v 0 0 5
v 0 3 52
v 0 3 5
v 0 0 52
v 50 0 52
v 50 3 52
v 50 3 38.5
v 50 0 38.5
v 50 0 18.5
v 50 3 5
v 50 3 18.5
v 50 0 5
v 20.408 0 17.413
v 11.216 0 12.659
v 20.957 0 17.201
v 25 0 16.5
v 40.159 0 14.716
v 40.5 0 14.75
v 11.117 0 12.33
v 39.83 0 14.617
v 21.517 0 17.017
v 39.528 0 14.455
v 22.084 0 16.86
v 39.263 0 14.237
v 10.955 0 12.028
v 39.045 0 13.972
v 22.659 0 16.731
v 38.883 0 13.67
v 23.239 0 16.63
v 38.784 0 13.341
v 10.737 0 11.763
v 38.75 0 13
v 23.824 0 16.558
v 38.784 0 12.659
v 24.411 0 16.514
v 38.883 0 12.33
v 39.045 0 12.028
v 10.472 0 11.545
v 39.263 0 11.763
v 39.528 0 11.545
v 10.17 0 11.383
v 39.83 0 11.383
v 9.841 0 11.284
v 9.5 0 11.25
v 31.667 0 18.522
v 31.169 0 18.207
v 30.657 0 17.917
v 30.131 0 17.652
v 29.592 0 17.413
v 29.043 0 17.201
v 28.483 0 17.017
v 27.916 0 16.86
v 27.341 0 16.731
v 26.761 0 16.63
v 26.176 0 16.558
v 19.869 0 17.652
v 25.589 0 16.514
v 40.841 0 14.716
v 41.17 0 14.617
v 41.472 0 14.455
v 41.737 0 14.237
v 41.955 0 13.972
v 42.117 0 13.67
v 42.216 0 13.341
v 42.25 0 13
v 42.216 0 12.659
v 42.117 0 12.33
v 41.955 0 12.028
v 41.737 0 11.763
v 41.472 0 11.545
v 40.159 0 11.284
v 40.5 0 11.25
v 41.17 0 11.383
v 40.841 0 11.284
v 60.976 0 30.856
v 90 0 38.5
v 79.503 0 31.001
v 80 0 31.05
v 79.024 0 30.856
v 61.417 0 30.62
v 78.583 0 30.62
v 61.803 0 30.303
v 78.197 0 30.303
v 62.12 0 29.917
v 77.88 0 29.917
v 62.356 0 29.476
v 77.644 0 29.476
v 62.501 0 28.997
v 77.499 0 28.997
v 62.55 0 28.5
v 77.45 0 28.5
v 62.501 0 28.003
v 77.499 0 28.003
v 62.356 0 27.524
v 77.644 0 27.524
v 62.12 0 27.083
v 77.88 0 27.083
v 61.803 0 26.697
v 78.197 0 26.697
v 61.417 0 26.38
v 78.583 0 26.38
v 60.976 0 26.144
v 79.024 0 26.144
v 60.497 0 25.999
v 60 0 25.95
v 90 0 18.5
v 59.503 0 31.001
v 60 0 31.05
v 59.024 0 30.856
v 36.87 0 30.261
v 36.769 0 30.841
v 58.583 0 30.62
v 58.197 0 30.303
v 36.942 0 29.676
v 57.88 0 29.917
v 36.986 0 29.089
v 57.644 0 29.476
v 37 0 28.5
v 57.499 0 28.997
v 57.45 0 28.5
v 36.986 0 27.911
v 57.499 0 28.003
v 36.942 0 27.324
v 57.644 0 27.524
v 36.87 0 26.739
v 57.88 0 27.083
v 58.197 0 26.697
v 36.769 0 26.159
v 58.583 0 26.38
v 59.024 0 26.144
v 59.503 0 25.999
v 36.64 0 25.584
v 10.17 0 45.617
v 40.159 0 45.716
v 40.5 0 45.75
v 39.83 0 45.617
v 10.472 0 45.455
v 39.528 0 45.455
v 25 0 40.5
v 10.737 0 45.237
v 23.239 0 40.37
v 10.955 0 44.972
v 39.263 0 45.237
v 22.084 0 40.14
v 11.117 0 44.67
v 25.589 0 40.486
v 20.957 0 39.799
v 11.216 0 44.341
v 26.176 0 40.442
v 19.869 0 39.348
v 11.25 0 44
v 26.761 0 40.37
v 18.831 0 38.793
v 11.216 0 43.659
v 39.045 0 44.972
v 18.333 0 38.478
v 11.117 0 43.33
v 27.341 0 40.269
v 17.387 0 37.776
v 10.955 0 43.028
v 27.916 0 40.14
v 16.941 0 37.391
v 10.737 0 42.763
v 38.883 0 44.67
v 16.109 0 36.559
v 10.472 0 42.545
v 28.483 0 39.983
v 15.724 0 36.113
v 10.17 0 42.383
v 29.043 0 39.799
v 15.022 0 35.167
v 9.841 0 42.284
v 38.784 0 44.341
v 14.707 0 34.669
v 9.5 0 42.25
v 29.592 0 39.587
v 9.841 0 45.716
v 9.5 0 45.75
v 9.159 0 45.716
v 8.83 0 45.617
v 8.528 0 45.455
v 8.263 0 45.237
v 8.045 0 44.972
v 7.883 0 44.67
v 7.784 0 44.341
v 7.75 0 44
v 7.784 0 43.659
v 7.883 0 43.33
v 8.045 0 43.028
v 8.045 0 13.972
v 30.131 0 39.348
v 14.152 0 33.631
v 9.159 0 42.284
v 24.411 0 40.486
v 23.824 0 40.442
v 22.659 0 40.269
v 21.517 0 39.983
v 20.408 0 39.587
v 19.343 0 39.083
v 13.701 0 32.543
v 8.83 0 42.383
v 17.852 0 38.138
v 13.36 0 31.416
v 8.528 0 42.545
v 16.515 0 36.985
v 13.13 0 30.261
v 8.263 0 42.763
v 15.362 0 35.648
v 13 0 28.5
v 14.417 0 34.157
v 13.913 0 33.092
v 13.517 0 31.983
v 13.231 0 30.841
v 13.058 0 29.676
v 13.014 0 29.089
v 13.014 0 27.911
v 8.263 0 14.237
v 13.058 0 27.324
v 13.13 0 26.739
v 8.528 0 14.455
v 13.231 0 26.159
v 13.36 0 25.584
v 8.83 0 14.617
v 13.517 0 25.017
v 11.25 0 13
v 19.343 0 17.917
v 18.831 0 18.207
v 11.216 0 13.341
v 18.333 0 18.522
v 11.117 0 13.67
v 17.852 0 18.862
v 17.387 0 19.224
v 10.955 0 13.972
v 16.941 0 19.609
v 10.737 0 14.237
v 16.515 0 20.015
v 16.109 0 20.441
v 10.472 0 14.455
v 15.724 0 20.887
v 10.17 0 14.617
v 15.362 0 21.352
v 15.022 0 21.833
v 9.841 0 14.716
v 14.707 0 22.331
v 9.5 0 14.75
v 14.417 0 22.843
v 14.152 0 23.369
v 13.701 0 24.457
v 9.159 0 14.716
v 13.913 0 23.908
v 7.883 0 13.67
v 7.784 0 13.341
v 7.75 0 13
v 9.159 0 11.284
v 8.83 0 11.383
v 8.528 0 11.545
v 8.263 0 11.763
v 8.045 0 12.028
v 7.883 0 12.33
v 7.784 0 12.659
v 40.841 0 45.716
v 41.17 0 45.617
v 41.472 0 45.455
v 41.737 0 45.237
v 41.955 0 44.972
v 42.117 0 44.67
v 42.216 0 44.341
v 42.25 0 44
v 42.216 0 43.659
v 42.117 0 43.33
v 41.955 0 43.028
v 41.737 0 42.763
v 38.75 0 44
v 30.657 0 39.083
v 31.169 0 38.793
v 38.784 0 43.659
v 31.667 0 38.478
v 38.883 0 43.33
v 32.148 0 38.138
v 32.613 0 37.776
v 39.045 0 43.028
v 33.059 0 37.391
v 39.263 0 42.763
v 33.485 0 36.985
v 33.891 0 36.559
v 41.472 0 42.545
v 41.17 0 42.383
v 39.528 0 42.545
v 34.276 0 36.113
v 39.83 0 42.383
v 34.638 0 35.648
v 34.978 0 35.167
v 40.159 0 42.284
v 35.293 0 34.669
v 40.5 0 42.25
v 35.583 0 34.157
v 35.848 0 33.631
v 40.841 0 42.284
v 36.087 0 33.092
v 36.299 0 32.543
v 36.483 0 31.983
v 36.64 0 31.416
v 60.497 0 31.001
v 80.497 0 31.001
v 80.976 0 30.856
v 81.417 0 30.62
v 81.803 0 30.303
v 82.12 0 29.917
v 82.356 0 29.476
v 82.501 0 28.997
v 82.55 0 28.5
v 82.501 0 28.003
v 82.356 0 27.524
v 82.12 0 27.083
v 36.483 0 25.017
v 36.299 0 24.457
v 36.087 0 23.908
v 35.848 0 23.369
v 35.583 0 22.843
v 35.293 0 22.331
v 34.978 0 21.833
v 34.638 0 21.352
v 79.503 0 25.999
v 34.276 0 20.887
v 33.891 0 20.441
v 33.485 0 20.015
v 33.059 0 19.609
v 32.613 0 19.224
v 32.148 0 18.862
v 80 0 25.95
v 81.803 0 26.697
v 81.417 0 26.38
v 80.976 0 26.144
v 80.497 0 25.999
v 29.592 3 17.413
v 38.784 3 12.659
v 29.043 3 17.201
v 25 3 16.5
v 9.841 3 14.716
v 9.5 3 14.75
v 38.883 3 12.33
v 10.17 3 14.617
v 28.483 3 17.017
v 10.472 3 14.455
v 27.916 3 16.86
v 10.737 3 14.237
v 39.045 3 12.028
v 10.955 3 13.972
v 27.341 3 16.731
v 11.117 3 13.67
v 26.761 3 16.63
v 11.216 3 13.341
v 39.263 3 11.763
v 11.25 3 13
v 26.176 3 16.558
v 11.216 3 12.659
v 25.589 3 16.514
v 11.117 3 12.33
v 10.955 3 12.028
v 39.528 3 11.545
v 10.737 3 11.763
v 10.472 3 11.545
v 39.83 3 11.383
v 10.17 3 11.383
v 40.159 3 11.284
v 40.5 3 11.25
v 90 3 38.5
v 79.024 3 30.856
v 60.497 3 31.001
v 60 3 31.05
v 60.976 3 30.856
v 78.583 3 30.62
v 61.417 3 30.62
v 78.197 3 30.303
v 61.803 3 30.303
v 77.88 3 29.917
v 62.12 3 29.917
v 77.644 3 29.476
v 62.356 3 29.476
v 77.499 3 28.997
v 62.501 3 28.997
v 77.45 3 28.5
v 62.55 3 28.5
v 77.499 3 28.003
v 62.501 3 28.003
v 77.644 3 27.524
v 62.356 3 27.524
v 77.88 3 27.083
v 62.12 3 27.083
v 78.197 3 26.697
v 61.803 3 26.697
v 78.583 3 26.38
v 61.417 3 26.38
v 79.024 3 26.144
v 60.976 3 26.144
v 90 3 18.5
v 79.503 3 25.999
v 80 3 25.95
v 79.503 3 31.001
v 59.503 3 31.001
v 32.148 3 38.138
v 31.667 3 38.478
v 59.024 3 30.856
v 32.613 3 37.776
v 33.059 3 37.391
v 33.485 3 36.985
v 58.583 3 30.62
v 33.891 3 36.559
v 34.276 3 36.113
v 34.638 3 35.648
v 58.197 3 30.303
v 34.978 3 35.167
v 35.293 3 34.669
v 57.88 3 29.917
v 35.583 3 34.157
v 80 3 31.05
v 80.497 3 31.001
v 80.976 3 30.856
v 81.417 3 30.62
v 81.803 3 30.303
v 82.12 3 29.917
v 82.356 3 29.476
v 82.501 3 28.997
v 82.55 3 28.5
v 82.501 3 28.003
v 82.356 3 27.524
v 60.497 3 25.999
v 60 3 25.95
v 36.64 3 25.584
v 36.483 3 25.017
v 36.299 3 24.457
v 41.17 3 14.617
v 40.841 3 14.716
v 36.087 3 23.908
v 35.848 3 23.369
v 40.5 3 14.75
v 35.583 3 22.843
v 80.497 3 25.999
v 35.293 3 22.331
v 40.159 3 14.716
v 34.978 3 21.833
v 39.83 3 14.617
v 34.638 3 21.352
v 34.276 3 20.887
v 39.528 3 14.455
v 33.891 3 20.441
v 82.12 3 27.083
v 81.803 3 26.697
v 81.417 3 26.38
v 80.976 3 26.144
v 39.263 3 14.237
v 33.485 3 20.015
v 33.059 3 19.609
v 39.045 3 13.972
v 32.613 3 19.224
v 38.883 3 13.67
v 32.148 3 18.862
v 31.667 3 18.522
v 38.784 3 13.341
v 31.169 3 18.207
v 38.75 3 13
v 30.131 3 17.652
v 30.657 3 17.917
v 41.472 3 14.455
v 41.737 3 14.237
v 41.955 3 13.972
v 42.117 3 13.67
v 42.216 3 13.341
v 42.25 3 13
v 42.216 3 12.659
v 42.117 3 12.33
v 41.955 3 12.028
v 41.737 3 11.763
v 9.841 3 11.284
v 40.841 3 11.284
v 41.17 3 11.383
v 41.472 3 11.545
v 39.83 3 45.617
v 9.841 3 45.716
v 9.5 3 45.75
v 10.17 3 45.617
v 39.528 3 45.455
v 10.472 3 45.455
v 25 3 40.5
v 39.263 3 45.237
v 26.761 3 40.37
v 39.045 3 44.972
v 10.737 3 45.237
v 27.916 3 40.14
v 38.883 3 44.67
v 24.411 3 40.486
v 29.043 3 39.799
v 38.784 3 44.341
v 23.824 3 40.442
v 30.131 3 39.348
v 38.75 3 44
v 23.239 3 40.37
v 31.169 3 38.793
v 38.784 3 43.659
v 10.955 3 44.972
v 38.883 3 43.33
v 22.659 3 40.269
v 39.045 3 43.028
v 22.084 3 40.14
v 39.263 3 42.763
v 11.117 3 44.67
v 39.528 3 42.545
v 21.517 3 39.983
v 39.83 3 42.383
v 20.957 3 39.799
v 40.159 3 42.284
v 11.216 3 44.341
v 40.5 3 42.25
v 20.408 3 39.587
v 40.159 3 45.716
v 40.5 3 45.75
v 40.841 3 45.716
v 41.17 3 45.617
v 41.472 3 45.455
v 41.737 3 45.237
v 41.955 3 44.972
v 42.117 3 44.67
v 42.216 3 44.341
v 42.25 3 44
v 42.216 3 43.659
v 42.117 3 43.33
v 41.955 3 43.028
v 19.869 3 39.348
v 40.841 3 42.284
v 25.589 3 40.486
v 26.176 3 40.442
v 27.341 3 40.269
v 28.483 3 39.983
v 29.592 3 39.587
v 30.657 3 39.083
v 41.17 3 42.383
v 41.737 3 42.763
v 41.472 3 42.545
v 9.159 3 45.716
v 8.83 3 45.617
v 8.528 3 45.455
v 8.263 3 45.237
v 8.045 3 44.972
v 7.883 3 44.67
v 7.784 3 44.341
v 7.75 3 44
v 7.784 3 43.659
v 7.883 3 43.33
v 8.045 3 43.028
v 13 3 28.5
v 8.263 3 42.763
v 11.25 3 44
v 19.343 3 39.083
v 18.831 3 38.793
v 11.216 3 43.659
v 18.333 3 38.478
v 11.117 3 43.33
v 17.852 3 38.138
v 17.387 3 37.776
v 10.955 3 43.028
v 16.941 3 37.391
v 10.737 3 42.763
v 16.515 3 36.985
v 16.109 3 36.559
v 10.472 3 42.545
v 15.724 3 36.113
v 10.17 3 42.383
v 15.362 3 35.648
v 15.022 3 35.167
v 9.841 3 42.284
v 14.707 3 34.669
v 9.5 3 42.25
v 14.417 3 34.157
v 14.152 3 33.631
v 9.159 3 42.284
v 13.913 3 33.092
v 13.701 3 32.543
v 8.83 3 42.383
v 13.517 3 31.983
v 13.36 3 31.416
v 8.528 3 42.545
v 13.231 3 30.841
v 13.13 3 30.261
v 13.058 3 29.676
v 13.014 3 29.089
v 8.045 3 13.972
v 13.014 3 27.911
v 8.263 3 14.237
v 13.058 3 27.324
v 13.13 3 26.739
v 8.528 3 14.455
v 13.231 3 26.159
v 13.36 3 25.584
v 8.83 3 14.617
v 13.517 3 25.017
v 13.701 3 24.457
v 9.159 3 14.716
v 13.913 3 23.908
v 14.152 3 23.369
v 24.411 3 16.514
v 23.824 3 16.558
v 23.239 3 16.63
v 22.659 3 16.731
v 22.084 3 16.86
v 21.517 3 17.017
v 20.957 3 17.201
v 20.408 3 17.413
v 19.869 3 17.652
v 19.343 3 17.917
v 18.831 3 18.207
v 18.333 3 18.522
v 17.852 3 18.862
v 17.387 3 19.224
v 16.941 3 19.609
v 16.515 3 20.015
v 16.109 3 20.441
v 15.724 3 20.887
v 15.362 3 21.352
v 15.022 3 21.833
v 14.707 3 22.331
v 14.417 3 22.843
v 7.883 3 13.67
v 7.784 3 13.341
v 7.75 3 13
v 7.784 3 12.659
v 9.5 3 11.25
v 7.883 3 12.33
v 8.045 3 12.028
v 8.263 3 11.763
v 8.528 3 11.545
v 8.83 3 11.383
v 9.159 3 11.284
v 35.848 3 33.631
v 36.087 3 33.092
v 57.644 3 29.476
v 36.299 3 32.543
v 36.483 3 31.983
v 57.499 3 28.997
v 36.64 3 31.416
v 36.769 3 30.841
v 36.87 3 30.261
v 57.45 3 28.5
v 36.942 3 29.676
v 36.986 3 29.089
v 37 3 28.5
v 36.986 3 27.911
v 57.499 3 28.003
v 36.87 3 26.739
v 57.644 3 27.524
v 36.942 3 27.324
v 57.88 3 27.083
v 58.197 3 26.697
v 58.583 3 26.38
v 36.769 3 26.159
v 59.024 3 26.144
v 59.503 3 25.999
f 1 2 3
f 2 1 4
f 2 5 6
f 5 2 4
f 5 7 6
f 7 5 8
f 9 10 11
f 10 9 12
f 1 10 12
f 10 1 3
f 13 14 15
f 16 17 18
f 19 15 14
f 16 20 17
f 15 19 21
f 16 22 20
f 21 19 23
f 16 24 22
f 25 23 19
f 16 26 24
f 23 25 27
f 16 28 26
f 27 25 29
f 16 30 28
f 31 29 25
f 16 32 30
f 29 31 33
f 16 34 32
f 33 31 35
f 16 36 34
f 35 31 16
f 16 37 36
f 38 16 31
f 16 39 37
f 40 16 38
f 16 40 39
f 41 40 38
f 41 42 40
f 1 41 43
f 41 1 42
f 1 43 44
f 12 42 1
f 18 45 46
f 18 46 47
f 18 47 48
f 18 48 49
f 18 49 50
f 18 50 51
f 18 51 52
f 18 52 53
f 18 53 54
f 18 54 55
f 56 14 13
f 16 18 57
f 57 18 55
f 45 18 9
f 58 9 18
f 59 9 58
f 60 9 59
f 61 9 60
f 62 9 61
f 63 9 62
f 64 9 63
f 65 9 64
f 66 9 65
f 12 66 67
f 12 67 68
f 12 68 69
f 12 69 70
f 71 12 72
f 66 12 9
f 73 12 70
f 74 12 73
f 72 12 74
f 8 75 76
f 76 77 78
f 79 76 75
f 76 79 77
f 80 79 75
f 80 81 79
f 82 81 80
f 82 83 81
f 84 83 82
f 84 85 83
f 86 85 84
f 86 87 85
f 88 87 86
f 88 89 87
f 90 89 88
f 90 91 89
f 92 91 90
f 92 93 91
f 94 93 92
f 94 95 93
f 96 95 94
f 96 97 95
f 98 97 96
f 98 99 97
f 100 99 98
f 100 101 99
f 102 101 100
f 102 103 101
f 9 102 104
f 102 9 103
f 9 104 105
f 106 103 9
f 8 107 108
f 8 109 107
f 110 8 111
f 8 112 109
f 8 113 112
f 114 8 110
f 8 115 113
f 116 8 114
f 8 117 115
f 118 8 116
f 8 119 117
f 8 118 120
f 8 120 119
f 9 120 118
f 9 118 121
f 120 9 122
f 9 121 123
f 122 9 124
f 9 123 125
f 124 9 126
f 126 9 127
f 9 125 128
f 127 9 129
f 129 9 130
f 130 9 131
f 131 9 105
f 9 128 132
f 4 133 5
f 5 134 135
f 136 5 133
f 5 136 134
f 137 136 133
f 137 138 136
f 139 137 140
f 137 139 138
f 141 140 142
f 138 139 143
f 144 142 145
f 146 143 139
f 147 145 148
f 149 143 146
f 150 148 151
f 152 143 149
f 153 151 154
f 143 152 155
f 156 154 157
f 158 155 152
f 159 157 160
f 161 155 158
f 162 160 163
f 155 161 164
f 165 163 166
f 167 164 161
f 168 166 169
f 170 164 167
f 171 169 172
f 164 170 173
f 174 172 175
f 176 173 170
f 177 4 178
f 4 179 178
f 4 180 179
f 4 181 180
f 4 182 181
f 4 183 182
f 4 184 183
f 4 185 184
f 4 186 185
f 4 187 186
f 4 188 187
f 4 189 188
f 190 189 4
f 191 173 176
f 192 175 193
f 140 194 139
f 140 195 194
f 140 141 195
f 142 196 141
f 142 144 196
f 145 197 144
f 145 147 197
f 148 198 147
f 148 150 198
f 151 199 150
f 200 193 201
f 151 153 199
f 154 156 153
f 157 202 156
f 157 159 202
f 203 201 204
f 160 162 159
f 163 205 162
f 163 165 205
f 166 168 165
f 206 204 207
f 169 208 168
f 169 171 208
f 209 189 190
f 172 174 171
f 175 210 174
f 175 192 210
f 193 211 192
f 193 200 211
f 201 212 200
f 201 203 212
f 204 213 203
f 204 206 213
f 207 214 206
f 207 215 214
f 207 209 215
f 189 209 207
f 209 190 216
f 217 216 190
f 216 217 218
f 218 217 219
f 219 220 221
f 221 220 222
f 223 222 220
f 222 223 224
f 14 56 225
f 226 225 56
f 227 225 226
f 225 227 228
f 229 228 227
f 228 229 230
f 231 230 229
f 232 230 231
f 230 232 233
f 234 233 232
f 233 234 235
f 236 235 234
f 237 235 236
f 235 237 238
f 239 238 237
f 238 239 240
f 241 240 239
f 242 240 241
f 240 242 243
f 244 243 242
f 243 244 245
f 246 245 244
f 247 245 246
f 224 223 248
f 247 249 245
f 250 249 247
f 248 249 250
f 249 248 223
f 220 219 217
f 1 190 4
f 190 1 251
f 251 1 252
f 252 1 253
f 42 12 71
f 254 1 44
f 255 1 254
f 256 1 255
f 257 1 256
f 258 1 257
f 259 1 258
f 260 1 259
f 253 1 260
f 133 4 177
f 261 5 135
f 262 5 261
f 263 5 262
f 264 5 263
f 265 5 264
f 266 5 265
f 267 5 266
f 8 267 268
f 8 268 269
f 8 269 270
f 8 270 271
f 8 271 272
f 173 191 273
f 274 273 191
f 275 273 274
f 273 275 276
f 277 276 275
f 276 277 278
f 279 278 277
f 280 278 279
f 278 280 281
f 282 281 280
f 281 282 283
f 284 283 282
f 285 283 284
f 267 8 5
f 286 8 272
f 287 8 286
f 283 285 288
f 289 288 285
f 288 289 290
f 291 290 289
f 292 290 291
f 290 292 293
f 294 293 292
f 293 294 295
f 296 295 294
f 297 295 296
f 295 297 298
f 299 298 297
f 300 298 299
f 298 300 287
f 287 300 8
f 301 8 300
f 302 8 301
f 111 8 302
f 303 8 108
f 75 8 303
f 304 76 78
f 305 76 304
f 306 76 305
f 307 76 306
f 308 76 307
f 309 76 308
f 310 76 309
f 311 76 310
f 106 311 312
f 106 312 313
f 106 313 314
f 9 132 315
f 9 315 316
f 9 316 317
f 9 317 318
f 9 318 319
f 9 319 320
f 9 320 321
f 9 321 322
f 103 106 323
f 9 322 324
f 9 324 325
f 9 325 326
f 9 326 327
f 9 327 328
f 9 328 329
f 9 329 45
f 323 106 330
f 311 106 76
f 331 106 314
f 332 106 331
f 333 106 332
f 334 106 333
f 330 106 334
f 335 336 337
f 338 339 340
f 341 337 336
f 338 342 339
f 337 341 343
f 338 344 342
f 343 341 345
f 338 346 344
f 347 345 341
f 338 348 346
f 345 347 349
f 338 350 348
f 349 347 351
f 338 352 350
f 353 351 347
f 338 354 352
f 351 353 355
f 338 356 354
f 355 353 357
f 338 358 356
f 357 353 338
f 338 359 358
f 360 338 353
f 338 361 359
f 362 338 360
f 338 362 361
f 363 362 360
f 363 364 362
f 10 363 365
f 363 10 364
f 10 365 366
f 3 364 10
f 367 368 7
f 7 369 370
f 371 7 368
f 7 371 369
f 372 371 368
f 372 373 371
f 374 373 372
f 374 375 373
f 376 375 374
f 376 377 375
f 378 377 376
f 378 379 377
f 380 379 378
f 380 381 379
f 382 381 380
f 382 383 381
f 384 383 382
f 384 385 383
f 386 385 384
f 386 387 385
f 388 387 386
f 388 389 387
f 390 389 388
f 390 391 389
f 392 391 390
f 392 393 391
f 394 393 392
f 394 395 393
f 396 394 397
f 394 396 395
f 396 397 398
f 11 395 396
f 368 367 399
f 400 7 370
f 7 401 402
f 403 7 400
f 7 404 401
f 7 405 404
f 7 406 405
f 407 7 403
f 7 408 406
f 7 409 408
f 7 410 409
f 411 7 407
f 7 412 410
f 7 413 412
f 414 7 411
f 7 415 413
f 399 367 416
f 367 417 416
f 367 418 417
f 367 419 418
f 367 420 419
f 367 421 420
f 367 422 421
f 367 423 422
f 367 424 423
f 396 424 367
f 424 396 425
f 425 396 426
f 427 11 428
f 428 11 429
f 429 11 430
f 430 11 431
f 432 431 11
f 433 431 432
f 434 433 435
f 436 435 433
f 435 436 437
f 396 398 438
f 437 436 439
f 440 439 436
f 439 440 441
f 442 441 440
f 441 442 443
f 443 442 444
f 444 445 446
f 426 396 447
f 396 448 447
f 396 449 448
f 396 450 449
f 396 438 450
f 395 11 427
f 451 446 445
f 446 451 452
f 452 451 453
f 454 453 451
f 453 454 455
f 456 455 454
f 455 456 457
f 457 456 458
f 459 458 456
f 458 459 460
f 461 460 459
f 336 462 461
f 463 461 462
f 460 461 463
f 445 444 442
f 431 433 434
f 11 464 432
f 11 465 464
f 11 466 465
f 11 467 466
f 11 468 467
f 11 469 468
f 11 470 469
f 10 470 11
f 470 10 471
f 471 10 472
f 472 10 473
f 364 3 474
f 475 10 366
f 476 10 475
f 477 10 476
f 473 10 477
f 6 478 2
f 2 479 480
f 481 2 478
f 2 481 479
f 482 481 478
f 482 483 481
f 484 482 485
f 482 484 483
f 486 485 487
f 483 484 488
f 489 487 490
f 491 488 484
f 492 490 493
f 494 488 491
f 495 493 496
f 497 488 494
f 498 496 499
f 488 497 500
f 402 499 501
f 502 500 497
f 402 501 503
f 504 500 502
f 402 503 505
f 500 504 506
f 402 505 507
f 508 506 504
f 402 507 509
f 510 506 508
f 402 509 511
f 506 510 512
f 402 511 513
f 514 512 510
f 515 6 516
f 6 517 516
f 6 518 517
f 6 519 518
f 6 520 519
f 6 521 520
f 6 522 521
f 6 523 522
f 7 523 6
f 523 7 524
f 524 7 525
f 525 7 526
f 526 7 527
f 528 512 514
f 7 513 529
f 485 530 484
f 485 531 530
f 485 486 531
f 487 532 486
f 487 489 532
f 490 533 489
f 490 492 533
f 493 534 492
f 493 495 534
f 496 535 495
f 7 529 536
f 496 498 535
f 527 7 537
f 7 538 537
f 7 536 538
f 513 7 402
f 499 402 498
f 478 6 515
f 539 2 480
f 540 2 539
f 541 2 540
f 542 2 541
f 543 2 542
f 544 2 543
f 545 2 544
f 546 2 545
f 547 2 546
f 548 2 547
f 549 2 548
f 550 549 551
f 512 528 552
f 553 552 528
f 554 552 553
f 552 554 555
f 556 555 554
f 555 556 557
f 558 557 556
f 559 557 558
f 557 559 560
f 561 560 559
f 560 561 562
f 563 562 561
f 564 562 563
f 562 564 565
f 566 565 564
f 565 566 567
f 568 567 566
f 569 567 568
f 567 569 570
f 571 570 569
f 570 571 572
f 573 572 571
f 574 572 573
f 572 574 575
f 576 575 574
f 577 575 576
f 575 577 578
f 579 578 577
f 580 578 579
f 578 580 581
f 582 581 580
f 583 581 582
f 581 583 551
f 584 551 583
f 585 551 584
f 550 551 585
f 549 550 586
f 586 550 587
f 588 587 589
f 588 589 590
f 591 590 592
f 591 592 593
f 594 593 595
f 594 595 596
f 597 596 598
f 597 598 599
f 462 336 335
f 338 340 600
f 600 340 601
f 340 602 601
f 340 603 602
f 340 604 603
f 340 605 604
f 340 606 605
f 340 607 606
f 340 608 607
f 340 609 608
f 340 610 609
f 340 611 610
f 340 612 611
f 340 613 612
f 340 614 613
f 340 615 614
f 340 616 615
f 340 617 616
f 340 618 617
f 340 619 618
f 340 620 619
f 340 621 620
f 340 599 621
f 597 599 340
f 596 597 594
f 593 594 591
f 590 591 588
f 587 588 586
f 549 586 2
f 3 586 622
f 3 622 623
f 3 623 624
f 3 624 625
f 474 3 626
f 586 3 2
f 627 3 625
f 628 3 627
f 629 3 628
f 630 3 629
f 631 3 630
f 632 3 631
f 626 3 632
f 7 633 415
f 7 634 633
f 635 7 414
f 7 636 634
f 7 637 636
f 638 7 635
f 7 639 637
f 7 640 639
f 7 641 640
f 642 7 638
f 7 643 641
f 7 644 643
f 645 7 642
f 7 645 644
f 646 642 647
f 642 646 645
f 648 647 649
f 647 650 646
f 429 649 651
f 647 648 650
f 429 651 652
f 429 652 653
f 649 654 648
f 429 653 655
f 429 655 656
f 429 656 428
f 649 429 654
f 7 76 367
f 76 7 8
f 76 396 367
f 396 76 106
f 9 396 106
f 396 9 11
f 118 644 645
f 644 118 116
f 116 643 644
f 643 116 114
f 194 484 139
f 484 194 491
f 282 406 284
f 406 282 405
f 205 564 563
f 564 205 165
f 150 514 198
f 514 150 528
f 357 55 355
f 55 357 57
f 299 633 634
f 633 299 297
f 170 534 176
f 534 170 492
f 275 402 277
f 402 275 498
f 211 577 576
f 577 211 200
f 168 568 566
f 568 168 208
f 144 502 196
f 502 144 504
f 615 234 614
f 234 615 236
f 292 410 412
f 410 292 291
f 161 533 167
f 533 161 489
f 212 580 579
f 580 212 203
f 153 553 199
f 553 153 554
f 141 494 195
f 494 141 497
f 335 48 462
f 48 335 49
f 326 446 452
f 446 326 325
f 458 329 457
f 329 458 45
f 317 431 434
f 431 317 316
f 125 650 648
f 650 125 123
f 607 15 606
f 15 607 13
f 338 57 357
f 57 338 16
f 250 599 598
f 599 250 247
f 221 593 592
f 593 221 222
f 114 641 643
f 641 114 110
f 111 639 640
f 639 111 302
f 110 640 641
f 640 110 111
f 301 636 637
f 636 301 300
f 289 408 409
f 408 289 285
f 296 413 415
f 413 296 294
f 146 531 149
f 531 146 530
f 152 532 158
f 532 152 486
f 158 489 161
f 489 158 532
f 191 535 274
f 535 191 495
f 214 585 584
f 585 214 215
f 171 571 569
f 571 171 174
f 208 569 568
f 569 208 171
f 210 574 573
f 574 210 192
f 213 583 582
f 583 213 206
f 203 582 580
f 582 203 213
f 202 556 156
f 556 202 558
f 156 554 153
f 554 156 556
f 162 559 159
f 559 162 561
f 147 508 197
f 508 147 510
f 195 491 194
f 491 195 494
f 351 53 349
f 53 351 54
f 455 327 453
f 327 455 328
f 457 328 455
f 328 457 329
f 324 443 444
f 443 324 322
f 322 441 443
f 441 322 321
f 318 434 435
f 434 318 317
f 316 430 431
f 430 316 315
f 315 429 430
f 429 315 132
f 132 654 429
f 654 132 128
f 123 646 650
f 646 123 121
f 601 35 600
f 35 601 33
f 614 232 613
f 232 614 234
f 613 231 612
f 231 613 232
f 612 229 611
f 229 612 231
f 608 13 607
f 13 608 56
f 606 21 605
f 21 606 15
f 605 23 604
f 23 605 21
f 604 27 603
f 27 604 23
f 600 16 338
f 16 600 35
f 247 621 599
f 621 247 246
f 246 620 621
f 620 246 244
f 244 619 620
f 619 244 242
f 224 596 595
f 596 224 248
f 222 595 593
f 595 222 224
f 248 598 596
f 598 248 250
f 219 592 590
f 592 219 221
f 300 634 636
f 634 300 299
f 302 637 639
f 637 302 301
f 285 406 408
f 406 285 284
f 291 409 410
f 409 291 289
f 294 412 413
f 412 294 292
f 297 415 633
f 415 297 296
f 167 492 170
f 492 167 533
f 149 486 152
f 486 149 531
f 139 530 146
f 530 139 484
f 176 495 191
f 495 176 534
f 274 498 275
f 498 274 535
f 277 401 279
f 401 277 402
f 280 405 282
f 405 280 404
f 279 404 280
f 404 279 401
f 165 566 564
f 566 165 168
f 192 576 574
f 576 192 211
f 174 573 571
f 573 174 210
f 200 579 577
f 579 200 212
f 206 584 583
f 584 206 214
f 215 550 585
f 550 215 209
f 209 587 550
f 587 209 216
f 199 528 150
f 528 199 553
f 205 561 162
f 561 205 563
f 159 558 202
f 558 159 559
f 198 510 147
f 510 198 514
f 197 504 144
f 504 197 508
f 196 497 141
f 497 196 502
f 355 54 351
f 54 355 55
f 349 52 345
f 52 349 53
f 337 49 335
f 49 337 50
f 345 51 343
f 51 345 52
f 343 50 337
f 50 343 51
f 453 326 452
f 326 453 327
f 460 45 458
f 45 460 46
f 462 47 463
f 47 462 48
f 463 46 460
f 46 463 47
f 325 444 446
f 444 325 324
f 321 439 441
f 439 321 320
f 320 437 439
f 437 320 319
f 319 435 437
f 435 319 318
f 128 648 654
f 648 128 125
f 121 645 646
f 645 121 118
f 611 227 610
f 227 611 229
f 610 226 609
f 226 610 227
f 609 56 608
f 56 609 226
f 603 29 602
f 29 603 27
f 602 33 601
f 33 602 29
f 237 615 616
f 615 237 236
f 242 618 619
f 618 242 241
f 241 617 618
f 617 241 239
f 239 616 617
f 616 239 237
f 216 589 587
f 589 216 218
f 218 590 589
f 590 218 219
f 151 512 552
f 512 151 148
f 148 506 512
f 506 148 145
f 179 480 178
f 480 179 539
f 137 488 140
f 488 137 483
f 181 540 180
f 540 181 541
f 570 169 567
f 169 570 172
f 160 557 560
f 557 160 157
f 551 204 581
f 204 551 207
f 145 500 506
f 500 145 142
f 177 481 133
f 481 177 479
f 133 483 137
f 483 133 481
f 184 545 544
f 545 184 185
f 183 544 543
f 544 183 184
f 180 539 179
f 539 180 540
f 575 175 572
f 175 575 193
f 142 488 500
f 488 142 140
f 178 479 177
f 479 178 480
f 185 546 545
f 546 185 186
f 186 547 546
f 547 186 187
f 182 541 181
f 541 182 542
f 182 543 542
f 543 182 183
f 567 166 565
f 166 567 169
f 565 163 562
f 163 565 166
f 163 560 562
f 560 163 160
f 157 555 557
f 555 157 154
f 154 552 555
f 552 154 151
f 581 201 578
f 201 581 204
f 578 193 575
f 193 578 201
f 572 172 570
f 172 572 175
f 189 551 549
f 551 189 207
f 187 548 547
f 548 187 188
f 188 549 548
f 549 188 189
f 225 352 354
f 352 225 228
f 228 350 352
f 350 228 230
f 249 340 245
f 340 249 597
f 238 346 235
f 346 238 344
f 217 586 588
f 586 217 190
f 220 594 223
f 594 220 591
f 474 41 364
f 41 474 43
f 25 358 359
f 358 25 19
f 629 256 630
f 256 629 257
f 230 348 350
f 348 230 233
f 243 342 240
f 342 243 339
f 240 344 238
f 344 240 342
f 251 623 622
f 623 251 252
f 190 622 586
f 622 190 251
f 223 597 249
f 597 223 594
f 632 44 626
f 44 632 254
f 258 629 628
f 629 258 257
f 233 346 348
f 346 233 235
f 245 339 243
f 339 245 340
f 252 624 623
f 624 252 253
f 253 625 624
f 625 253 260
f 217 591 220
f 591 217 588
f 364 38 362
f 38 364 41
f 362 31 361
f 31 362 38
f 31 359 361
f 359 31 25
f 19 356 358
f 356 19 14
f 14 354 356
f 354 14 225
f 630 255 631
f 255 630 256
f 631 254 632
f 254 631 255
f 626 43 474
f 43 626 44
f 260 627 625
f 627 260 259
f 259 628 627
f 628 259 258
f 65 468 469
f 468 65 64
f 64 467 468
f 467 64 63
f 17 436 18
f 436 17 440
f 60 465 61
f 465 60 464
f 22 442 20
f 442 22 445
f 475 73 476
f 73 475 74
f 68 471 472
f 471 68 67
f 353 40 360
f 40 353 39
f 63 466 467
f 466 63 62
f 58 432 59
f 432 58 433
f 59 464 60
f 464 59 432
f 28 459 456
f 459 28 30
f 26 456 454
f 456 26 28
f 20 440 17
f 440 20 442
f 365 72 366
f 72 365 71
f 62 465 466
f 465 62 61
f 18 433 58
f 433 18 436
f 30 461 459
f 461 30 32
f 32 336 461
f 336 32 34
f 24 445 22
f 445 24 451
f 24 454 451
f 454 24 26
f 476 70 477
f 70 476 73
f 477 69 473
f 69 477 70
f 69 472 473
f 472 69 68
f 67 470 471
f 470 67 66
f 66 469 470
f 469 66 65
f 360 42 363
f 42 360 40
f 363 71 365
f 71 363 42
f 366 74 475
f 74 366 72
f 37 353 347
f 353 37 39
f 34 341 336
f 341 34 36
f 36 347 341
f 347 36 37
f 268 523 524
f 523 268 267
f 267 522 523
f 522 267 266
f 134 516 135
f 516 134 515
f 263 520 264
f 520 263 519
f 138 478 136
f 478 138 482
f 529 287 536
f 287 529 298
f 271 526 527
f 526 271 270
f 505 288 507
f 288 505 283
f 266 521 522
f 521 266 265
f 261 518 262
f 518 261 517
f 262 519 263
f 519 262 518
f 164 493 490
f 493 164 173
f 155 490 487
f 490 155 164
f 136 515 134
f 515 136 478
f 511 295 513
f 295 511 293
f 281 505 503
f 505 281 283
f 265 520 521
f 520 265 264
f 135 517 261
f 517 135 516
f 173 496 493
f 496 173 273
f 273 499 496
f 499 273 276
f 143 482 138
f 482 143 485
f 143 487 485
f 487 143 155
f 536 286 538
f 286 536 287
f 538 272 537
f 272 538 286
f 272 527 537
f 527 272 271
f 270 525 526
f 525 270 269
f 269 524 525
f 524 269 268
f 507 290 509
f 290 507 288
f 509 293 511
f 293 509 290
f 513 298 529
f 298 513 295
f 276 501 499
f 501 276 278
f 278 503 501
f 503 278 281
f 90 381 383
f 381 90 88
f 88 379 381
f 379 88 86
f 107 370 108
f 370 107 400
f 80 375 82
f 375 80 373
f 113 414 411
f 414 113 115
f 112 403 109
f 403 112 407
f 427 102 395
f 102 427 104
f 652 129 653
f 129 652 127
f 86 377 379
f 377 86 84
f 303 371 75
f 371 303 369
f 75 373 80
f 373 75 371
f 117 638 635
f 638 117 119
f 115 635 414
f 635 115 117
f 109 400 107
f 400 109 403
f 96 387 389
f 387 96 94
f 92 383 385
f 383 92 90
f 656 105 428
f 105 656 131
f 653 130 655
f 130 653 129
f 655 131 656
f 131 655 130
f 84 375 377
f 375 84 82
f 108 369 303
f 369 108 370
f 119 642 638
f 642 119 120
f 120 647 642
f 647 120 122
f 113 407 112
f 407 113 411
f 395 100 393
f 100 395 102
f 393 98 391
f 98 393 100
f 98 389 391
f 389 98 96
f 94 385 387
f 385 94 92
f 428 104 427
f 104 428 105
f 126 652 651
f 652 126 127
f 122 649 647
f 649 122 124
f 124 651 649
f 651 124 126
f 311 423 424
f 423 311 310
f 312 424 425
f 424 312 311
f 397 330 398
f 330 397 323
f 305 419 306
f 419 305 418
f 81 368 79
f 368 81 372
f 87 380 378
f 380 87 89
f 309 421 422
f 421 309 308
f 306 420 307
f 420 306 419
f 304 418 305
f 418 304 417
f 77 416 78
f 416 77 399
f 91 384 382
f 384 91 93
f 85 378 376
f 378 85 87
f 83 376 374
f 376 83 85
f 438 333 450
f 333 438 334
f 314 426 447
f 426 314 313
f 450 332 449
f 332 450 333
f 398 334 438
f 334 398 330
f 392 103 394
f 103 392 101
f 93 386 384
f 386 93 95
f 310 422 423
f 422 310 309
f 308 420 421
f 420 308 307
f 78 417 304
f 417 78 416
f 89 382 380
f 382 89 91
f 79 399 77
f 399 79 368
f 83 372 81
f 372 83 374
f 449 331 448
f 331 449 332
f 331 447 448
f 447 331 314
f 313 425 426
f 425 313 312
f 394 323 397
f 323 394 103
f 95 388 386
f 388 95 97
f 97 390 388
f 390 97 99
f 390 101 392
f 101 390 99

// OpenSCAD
//!OpenSCAD
// Number of motors
motors = 1; // [1:1:25]
// Distance between motor mounts
gap = 25; // [0:No Gap, 25:25mm Gap]
// Size of screw holes in mm
hole_size = 3.5; // [3:0.1:5]

build();

module build(){
  difference(){
    frame();
    holes();
  }
}

module frame(){
  translate([0,0,5])cube([50,3,47]);
 translate([50,0,13.5+5]) cube([40,3,20]);
}
module holes(){
    translate([25,3,28.5])rotate([90,0,0])cylinder($fn=128, r=12, h=7);
    translate([9.5,3,44])rotate([90,0,0])cylinder($fn=32, r=hole_size/2, h=7);
    translate([9.5,3,13])rotate([90,0,0])cylinder($fn=32, r=hole_size/2, h=7);
    translate([40.5,3,13])rotate([90,0,0])cylinder($fn=32, r=hole_size/2, h=7);
    translate([40.5,3,44])rotate([90,0,0])cylinder($fn=32, r=hole_size/2, h=7);
  
    translate([60,3,28.5])rotate([90,0,0])cylinder($fn=32, r=5.1/2, h=7);  
    translate([80,3,28.5])rotate([90,0,0])cylinder($fn=32, r=5.1/2, h=7);  
  
}
